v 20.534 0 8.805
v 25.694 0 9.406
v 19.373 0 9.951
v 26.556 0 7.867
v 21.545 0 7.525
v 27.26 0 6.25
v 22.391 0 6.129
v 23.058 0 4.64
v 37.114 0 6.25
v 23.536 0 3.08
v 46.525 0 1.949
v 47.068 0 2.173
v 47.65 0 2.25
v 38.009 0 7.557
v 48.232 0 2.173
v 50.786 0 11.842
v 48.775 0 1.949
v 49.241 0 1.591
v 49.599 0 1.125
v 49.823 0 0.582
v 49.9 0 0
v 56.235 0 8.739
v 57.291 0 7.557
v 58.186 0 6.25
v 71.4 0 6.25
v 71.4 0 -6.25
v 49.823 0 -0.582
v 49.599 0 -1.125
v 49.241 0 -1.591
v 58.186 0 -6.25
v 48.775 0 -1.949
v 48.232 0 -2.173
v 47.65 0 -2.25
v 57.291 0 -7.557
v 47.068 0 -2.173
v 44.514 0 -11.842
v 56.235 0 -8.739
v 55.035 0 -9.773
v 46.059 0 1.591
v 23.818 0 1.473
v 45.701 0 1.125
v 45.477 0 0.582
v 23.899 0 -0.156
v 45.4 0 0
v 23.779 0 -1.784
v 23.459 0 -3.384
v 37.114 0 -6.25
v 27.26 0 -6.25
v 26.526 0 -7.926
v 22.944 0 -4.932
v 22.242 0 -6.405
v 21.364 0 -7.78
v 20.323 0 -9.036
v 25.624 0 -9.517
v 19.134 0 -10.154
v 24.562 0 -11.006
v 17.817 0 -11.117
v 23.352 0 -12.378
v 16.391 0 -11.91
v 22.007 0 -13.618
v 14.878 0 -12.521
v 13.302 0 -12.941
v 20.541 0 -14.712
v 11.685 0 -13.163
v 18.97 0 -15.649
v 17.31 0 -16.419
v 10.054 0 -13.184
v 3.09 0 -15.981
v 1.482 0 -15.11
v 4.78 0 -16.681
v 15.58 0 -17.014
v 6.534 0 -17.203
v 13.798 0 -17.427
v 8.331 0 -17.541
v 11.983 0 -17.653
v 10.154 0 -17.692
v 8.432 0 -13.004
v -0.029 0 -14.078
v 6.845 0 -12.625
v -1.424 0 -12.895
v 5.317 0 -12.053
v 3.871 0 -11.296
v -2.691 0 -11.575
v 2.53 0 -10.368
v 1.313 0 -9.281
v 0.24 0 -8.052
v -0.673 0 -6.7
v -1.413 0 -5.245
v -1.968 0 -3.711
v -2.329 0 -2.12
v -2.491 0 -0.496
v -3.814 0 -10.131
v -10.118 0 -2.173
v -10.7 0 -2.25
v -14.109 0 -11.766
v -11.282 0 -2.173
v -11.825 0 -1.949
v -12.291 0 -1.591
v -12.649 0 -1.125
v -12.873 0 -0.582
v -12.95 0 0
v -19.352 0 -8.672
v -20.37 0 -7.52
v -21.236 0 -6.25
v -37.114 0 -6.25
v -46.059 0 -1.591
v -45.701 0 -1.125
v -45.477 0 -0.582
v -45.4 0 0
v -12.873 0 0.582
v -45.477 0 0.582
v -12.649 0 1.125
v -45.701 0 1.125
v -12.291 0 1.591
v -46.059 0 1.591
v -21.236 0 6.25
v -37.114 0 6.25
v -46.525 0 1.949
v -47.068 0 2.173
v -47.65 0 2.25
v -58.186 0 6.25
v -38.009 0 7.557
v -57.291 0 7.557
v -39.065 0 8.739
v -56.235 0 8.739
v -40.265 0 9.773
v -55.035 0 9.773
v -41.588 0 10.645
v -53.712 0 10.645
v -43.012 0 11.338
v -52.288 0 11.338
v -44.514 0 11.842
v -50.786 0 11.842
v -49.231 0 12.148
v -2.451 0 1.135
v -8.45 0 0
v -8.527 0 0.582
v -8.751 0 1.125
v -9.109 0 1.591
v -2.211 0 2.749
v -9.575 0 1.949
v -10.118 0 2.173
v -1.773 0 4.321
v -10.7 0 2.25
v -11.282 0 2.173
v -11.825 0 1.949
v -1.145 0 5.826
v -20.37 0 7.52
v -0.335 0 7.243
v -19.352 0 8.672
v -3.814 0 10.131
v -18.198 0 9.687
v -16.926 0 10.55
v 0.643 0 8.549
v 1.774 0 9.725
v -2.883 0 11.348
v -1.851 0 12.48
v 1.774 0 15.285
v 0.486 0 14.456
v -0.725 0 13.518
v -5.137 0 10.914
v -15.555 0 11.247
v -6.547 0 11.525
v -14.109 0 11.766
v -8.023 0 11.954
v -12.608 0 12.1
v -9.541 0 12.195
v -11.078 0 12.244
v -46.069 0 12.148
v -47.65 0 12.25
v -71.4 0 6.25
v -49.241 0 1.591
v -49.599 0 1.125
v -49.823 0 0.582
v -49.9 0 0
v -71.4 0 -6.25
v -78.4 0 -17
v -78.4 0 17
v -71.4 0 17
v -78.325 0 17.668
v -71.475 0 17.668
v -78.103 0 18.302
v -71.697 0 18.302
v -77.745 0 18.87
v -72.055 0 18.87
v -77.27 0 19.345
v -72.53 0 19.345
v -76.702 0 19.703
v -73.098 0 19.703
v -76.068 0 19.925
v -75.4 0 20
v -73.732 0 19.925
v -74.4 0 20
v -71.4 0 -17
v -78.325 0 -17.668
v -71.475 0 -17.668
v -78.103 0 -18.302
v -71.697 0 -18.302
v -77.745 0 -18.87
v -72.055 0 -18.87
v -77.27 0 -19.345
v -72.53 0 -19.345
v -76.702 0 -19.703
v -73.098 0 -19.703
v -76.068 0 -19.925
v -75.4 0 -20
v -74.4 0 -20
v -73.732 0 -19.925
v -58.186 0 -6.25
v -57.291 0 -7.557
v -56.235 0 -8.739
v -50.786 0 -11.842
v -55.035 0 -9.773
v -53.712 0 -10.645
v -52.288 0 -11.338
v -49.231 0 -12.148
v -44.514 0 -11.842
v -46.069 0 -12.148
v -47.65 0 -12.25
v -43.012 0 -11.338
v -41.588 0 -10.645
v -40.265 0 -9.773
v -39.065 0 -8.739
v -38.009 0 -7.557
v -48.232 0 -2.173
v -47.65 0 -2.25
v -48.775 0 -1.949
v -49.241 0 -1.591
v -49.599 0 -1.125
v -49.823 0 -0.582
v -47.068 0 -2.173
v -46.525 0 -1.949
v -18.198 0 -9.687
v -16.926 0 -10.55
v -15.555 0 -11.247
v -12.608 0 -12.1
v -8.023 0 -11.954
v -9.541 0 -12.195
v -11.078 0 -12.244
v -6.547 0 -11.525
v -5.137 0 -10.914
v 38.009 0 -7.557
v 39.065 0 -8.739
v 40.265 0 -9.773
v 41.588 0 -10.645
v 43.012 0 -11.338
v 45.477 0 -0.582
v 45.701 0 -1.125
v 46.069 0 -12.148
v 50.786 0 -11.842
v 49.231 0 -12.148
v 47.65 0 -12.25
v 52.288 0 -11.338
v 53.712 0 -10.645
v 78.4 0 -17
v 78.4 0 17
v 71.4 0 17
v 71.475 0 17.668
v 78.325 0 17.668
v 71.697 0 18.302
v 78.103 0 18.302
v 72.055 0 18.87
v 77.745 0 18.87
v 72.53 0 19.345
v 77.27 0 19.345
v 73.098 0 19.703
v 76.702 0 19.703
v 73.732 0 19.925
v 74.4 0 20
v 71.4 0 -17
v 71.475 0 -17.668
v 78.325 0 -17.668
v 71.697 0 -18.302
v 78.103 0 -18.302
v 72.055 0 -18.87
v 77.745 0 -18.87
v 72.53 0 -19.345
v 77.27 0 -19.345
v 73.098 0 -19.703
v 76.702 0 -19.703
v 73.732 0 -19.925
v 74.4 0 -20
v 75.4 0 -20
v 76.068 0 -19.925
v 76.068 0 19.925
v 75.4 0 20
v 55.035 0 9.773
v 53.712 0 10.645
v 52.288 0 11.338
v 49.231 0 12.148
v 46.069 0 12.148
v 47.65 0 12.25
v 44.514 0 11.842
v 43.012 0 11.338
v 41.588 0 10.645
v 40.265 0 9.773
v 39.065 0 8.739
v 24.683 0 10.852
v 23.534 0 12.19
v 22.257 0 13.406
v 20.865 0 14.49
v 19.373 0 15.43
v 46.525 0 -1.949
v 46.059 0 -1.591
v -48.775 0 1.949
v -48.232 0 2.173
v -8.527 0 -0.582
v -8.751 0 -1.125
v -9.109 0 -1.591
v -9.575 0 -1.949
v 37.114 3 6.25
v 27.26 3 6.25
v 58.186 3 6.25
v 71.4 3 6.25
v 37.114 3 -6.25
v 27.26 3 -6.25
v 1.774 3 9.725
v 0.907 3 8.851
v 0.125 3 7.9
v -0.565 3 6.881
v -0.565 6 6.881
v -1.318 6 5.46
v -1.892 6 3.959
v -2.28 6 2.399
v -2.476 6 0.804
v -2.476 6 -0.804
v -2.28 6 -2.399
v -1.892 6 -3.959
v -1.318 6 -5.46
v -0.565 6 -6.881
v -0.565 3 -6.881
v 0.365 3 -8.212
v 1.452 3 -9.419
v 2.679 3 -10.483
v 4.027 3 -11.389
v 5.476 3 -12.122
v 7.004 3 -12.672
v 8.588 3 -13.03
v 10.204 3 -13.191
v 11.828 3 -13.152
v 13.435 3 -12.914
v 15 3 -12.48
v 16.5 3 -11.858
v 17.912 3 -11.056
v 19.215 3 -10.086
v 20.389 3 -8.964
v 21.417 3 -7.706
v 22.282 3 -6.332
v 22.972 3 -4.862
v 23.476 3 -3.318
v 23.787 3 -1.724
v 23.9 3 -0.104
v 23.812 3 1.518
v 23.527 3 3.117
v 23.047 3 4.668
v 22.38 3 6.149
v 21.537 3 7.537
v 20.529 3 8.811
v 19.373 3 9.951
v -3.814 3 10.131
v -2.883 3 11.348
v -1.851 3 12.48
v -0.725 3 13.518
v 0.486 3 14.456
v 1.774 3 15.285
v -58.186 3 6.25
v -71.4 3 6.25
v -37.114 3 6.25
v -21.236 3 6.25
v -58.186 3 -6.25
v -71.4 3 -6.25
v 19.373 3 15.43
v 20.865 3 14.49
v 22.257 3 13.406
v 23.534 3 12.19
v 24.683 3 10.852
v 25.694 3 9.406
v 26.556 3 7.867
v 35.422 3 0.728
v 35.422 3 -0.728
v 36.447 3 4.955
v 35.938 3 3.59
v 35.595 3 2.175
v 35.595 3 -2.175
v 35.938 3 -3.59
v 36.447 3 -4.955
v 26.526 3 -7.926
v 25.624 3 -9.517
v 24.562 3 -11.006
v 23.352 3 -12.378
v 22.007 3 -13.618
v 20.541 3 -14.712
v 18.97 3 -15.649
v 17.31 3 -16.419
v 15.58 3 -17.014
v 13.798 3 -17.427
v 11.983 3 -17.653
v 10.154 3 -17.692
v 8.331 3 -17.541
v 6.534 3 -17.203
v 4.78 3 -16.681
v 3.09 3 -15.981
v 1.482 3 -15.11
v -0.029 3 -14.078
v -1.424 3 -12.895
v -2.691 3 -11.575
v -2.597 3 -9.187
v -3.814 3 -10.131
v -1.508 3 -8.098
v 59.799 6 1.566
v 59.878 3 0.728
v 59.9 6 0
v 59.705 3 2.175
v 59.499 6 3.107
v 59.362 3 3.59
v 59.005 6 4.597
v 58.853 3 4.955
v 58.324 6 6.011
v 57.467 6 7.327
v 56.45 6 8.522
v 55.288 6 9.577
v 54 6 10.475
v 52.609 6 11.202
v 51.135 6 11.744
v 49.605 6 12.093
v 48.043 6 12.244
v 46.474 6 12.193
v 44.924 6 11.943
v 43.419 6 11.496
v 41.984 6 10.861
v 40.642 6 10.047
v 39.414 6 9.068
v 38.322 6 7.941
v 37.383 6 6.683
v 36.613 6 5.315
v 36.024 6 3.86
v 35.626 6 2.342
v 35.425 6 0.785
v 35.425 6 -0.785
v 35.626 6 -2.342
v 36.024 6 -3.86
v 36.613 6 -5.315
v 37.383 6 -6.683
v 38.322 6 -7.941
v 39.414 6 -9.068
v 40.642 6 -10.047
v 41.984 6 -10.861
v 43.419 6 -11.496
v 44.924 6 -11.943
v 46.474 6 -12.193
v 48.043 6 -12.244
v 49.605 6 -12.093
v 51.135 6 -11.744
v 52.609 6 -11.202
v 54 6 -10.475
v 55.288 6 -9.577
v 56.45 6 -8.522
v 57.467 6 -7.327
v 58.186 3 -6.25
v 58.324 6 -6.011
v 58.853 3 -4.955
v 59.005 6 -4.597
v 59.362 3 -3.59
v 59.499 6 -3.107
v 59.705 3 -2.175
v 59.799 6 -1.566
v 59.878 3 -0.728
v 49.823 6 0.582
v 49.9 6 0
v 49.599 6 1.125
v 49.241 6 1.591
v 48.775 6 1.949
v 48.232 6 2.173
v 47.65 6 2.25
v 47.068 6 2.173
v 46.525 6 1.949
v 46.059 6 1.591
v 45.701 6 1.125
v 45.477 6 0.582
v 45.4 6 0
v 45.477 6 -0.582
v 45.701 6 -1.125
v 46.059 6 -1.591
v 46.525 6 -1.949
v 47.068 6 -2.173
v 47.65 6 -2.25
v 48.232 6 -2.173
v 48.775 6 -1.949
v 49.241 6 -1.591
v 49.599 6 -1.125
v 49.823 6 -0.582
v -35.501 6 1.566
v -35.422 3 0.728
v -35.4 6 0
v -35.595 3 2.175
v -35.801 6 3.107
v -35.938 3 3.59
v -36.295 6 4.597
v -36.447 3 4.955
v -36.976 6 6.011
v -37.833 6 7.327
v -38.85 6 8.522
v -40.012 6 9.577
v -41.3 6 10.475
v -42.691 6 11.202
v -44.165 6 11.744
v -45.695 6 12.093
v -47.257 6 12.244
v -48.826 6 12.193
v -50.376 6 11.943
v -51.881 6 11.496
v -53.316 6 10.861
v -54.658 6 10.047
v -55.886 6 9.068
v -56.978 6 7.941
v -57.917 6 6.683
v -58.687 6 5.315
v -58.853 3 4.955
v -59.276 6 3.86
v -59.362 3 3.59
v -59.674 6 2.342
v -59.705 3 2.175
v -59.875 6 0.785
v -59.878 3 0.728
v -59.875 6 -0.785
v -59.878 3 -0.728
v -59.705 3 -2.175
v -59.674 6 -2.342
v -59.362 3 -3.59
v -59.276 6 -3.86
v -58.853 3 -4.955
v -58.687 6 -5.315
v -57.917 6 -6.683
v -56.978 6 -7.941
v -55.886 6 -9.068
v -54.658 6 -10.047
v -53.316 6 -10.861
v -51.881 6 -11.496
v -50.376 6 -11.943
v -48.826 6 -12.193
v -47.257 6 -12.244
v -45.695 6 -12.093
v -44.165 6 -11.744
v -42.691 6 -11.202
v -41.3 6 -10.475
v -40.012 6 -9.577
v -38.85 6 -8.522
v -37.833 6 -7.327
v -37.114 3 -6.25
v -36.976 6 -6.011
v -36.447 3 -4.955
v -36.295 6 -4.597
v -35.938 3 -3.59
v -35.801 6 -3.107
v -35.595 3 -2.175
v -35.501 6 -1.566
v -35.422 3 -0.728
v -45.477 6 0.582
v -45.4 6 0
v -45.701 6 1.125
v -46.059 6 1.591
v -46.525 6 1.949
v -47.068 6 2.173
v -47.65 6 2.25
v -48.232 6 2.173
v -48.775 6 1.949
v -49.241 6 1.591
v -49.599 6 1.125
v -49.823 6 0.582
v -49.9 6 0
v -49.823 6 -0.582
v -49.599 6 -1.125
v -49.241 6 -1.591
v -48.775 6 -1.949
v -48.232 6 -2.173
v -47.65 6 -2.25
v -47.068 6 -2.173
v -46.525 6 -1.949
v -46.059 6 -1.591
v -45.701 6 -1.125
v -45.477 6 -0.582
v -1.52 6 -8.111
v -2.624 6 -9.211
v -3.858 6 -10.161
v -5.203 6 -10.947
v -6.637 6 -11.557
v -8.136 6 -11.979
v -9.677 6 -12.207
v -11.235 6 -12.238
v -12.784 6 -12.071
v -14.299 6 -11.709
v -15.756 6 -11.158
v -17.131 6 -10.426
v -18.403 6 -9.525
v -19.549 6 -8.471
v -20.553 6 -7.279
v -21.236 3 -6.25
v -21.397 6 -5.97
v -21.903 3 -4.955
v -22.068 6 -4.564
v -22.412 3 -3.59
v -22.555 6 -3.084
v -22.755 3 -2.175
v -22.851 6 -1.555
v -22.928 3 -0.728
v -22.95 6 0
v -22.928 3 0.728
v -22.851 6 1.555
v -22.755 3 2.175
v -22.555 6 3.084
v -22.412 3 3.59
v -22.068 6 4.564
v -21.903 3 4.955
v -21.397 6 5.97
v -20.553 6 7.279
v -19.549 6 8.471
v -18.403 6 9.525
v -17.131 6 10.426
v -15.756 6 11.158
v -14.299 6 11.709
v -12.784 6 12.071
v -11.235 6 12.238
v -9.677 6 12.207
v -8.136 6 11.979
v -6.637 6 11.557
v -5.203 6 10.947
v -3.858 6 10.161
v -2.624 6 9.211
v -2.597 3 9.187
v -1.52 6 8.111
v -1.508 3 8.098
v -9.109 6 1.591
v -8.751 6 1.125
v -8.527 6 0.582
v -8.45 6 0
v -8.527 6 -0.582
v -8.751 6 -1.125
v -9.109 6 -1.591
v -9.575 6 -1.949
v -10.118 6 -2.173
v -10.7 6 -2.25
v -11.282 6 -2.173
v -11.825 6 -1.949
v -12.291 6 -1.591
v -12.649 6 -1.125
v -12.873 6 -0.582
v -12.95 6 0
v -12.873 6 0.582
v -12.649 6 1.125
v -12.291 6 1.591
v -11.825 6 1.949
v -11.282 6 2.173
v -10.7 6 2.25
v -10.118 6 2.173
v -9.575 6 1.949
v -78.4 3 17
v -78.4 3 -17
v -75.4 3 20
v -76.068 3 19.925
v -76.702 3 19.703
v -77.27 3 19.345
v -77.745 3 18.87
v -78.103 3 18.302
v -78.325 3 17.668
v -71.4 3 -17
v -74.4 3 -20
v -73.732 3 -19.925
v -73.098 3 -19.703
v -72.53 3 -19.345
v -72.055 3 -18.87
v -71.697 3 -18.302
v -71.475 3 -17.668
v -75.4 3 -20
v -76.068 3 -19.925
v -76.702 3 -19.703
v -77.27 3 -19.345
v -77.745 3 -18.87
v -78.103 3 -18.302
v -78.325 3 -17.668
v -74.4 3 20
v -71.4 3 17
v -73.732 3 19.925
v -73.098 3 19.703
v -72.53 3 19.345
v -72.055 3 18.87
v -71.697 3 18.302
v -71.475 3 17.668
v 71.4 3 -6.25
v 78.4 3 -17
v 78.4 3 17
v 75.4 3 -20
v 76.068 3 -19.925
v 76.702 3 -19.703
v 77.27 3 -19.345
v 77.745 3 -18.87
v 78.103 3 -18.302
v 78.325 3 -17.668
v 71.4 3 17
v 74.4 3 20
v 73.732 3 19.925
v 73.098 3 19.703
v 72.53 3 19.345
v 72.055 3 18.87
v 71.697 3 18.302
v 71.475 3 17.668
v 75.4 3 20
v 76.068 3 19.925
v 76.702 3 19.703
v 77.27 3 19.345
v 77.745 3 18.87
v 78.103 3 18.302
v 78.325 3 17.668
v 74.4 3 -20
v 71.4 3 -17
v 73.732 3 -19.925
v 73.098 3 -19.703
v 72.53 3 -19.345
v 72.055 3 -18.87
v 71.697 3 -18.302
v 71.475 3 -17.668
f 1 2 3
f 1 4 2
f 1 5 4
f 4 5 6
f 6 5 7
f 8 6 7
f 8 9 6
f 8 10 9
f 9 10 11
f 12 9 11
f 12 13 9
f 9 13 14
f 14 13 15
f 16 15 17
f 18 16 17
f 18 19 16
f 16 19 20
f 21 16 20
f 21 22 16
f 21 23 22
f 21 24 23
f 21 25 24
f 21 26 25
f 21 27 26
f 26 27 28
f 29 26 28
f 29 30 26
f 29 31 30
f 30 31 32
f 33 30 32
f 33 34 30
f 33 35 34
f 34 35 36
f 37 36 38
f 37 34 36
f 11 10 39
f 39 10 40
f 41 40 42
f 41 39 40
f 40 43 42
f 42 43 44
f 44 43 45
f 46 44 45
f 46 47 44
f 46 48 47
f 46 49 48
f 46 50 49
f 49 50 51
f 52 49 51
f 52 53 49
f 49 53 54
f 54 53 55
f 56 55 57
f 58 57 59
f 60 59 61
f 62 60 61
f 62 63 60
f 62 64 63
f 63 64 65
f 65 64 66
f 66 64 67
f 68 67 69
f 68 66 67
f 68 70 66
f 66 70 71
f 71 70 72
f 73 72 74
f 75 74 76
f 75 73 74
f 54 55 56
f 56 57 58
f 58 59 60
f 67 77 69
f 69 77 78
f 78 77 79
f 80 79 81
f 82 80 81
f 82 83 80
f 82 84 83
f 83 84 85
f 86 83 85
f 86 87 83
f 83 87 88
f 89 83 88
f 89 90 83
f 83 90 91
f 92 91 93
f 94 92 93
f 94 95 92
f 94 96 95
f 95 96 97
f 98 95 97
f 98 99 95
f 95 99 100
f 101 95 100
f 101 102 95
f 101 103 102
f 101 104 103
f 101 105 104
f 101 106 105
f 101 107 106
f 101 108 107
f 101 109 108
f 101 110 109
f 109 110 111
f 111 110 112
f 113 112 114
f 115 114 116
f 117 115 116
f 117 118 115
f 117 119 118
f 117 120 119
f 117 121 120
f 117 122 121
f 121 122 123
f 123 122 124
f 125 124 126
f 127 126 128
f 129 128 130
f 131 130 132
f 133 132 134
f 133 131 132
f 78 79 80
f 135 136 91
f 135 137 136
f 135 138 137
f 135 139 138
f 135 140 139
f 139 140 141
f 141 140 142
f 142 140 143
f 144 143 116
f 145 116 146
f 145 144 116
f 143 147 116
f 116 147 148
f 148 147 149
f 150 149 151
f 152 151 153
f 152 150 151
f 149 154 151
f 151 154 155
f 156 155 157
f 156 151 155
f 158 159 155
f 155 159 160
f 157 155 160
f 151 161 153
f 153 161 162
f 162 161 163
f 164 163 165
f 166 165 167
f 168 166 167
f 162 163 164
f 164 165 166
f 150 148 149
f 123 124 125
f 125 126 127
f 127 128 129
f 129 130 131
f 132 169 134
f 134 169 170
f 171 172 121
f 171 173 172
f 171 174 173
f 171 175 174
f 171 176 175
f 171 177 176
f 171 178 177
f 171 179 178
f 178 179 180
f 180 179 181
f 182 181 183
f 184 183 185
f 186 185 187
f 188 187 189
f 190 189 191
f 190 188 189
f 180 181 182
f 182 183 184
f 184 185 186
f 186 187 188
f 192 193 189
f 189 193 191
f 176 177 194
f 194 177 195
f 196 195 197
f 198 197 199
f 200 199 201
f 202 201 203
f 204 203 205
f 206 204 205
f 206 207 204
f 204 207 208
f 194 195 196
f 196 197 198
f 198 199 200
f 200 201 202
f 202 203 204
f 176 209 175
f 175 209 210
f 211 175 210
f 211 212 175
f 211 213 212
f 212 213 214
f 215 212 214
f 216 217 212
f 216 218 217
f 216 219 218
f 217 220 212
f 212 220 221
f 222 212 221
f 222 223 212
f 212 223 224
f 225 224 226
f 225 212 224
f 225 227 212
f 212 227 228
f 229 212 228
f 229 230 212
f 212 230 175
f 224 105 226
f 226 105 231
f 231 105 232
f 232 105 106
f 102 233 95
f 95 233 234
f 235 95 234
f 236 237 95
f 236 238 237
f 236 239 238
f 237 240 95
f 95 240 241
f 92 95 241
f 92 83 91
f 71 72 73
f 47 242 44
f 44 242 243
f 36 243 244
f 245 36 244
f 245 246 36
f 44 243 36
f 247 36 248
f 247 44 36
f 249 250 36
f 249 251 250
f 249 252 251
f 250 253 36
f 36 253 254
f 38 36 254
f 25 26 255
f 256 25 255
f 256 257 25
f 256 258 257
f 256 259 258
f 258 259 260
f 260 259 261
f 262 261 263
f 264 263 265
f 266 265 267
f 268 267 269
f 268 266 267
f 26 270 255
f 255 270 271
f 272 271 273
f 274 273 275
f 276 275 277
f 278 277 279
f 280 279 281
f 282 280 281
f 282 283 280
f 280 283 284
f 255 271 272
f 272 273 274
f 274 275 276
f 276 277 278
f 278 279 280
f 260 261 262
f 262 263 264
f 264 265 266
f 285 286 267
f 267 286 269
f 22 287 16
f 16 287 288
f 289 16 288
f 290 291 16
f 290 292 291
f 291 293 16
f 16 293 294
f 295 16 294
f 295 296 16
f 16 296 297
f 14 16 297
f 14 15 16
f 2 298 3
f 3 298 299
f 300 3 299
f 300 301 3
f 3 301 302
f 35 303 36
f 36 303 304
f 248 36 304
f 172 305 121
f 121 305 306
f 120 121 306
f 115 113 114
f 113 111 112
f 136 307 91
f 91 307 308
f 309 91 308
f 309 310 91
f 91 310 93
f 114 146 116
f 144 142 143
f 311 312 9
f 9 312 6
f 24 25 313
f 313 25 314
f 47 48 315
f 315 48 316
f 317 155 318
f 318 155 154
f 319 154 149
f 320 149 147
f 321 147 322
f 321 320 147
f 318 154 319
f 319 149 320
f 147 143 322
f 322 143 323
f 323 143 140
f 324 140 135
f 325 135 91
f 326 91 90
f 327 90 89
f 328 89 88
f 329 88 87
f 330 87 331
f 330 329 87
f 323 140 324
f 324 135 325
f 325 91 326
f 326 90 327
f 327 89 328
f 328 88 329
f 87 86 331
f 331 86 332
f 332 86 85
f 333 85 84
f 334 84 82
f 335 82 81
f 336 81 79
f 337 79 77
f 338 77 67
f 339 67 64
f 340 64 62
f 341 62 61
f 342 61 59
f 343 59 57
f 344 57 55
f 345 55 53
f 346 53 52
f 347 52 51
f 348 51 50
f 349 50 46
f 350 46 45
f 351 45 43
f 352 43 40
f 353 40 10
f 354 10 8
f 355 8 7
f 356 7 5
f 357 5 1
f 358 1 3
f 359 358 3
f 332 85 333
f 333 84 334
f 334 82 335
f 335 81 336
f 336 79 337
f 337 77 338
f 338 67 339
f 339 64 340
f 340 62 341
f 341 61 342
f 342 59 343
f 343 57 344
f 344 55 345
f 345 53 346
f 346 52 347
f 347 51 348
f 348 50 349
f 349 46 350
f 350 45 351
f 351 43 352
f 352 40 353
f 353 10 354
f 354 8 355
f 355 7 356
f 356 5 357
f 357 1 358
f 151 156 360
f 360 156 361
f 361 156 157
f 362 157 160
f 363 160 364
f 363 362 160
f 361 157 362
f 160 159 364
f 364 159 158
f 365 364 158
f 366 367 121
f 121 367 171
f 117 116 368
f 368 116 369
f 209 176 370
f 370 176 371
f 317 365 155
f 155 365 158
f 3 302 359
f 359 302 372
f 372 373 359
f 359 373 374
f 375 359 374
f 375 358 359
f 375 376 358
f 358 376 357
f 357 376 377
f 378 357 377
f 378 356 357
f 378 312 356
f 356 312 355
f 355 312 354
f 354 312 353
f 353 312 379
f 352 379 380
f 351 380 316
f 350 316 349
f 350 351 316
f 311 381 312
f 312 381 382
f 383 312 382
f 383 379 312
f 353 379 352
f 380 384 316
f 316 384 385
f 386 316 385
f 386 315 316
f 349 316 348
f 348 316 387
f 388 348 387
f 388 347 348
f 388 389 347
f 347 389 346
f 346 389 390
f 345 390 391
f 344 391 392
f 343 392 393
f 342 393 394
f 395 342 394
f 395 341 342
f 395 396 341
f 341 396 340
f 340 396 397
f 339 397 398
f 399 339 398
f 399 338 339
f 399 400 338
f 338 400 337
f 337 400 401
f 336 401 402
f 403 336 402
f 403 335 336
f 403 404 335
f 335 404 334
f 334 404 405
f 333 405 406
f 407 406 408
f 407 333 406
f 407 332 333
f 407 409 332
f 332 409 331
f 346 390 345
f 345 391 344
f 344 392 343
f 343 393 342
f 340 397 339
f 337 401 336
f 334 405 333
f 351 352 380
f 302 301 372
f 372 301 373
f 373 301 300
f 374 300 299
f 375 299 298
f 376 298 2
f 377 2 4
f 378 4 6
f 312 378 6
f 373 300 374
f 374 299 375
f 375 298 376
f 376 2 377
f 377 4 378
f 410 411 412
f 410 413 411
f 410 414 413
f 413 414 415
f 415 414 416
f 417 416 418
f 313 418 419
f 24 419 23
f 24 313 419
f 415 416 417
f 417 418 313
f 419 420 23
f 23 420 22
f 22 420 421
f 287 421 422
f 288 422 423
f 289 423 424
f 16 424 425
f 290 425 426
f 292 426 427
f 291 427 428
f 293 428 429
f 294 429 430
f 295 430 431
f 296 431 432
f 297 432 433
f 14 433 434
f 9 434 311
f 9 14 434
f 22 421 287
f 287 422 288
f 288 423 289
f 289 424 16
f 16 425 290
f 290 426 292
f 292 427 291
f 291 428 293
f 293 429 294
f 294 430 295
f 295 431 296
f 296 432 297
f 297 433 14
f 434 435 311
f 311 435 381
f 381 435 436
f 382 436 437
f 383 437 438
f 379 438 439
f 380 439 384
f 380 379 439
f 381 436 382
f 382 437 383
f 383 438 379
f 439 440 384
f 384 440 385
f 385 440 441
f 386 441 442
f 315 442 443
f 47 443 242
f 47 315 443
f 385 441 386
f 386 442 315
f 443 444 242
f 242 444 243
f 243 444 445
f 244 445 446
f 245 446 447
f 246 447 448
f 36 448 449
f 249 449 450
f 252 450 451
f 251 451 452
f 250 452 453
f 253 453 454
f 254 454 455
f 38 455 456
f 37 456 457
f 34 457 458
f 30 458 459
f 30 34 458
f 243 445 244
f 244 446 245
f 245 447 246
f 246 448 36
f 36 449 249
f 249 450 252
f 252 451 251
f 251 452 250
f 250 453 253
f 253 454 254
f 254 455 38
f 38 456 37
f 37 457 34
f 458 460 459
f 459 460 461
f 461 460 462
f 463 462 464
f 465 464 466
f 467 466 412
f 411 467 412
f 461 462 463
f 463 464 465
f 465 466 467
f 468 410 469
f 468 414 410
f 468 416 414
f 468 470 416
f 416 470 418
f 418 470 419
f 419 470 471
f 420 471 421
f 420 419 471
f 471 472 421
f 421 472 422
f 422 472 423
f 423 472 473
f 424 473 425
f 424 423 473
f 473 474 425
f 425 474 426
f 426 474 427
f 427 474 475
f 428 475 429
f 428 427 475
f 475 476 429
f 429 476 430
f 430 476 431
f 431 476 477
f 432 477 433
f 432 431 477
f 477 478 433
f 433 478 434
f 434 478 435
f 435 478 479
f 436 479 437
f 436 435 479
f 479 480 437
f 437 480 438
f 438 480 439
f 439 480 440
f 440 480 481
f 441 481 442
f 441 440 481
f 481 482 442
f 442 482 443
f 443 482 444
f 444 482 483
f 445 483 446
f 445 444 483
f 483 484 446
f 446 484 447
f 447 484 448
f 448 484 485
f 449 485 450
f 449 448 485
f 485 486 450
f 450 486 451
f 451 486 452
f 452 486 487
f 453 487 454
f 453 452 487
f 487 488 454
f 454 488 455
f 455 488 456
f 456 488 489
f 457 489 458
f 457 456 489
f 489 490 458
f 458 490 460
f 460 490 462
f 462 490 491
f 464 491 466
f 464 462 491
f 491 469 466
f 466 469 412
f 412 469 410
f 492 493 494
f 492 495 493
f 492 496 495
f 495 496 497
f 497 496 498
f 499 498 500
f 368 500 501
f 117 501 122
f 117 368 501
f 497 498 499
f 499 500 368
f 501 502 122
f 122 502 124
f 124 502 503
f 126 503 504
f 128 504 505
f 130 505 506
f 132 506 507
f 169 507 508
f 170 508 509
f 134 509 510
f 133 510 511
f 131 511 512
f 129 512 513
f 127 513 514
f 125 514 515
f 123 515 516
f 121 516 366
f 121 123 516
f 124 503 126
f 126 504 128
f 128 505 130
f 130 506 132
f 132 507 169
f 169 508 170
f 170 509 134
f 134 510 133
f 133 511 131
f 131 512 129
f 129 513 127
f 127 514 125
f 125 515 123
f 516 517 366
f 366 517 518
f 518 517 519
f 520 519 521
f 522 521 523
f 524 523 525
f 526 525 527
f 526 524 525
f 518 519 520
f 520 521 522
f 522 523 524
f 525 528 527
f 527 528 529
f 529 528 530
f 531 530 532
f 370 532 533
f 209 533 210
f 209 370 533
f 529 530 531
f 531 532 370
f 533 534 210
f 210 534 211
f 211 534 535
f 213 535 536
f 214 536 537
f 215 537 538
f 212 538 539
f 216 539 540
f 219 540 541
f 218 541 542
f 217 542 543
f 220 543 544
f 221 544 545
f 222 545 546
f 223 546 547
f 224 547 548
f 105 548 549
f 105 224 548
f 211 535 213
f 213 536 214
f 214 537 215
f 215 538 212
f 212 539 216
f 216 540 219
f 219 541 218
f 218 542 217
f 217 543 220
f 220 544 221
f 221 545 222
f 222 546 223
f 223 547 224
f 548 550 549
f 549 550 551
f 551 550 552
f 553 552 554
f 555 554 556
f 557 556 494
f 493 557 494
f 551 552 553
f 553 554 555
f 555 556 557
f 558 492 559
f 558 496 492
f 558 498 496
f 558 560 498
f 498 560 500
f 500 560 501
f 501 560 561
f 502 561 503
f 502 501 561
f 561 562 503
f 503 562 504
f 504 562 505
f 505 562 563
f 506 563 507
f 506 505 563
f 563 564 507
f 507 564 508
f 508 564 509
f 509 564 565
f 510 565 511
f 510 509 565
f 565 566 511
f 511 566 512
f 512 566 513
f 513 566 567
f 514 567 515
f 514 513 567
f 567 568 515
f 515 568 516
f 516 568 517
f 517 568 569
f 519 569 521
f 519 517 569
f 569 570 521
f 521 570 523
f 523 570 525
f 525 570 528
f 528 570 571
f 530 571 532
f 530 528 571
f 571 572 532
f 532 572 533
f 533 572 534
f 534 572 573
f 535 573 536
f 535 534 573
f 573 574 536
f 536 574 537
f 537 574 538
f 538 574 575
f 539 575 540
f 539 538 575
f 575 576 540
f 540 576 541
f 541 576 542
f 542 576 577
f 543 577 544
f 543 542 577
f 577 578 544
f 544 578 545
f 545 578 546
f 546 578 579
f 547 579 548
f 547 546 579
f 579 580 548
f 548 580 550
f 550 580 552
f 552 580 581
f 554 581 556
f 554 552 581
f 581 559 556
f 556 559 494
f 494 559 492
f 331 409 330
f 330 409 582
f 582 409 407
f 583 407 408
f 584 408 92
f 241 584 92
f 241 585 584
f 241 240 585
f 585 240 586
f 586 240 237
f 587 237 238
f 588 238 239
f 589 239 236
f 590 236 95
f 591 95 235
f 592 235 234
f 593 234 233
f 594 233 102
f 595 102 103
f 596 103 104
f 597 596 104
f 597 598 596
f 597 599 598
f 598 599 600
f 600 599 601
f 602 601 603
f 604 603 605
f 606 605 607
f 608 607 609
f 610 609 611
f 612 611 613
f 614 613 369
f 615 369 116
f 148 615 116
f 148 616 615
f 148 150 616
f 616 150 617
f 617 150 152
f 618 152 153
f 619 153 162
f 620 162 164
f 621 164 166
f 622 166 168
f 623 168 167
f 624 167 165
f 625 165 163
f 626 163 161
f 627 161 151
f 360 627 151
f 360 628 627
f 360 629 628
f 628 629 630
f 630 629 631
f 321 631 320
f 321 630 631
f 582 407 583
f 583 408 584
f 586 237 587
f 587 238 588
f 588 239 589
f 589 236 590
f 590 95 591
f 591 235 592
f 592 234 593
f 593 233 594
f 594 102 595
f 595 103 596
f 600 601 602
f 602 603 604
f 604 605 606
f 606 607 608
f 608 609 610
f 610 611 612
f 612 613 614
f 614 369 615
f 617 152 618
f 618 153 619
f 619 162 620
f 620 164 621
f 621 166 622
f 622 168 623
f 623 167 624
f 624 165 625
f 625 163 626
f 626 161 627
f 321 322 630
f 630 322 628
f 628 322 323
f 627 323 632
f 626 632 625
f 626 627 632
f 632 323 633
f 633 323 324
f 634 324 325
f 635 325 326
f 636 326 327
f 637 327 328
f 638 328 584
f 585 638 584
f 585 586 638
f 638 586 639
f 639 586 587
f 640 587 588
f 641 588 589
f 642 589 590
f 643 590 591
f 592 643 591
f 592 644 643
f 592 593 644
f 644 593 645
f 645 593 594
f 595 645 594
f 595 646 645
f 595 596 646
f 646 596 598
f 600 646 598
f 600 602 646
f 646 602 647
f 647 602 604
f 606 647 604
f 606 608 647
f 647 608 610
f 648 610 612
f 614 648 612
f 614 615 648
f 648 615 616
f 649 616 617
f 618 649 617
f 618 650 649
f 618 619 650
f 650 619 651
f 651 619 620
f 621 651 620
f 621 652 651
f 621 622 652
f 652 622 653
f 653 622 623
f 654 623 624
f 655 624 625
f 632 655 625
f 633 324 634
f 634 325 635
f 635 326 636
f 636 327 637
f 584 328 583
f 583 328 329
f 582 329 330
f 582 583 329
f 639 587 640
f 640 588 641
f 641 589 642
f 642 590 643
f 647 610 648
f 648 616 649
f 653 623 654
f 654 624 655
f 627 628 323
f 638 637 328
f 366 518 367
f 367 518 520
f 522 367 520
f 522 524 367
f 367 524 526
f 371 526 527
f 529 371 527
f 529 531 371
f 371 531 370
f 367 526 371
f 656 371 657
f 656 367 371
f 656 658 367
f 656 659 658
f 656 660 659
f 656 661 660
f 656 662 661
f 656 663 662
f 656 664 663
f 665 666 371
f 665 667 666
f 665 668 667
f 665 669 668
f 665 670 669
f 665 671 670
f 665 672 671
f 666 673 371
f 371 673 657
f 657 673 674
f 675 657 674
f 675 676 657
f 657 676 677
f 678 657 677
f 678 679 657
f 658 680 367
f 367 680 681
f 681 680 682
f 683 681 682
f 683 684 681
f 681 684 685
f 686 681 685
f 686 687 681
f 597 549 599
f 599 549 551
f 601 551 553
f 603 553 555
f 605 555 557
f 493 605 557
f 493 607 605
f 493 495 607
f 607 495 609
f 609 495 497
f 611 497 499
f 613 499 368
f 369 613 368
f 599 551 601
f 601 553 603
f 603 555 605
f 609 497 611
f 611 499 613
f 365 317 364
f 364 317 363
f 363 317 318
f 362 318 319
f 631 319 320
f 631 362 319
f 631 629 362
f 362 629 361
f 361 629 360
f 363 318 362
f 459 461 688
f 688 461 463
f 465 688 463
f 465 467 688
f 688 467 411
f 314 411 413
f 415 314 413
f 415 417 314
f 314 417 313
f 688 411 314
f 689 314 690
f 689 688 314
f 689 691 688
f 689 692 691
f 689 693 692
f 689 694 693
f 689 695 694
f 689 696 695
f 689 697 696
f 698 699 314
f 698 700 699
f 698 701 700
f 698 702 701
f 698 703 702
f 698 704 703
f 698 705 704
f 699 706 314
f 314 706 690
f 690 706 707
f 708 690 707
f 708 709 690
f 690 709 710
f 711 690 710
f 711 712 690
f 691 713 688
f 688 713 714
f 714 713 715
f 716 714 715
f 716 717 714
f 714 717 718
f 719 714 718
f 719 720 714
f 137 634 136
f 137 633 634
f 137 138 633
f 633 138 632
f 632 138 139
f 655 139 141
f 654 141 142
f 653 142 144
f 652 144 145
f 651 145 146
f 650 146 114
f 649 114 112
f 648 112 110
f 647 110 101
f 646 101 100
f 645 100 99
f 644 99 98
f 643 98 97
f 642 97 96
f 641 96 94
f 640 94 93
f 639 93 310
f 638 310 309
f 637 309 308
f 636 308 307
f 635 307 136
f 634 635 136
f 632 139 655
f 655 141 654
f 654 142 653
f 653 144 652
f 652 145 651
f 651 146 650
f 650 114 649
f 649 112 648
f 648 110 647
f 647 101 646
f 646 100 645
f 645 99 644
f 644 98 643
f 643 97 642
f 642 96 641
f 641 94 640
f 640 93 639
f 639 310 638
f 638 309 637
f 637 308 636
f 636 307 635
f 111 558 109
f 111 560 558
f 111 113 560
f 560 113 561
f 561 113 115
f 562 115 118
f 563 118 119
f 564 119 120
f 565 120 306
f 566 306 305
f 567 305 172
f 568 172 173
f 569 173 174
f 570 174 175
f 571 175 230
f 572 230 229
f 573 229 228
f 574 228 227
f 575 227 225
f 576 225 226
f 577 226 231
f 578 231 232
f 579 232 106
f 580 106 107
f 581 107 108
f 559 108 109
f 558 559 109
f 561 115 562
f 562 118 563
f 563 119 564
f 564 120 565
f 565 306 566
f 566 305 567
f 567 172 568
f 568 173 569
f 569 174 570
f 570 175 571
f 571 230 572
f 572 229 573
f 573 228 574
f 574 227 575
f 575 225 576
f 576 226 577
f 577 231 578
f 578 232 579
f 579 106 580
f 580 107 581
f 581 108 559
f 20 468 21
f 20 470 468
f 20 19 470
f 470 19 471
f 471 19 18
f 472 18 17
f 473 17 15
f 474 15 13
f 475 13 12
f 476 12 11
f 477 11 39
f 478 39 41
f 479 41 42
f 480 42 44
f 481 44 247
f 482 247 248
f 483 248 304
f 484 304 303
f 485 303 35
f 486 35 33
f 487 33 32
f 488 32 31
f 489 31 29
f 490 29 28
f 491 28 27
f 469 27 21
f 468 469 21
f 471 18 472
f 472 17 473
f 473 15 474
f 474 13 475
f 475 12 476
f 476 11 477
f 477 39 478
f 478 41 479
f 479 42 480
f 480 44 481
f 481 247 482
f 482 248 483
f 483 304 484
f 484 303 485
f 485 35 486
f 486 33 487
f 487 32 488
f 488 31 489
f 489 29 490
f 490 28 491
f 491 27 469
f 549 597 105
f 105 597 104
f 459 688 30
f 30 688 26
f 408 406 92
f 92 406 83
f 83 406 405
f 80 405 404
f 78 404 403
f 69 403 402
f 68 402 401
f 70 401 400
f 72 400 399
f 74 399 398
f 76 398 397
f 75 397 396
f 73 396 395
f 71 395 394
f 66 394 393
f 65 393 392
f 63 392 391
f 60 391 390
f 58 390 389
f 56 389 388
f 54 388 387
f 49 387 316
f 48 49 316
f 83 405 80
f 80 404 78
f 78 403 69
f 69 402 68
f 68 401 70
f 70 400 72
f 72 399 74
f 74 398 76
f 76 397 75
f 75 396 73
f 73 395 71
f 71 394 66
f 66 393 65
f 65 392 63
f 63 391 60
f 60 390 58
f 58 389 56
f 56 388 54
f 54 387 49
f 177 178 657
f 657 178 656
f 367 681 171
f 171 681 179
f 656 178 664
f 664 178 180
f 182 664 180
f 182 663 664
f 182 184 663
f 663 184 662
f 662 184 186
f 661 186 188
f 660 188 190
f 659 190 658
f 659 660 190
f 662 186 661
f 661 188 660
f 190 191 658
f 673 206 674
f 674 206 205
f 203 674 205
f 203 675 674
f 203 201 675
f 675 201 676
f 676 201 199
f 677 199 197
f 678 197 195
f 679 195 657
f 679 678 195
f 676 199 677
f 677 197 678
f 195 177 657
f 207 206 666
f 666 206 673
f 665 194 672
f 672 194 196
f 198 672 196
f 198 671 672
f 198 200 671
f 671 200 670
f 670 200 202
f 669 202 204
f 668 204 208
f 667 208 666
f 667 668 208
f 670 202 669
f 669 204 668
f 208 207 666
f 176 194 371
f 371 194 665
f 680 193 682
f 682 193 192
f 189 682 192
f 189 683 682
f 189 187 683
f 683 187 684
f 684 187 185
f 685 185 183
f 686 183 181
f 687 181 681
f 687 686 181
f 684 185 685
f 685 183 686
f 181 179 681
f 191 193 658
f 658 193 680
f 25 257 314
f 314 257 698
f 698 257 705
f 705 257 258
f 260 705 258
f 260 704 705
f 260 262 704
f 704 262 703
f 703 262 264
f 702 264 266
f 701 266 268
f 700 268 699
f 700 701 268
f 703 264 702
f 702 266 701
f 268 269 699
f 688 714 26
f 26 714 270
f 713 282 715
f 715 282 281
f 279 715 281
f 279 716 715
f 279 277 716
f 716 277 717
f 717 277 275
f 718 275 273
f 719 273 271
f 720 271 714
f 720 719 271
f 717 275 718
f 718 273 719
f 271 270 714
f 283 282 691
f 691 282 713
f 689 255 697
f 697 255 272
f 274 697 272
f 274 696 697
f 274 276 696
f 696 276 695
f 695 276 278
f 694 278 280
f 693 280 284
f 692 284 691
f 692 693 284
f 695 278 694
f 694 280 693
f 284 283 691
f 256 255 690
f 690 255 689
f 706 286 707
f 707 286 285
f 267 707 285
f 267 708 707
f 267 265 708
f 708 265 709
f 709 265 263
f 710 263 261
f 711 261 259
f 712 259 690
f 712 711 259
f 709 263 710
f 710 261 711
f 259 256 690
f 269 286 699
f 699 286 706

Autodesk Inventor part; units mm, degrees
ref_plane "YZ Plane" through (0, 0, 0) normal (1, 0, 0) x (0, 1, 0)
ref_plane "XZ Plane" through (0, 0, 0) normal (0, 1, 0) x (-1, 0, 0)
ref_plane "XY Plane" through (0, 0, 0) normal (0, 0, 1) x (1, 0, 0)
sketch "Sketch1" plane through (0, 0, 0) normal (0, 1, 0) x (-1, 0, 0)
  line L0 (-75.4, 6.25) -> (75.4, 6.25)
  line L1 (78.4, 3.25) -> (78.4, -3.25)
  line L2 (75.4, -6.25) -> (-75.4, -6.25)
  line L3 (-78.4, -3.25) -> (-78.4, 3.25)
  circle A0 centre (-47.65, 0) radius 2.25
  circle A1 centre (47.65, 0) radius 2.25
  circle A2 centre (-47.65, 0) radius 26.75 construction
  circle A3 centre (-10.7, 0) radius 1.7
  circle A4 centre (-10.7, 0) radius 11.2 construction
  line L4 (-21.9, 0) -> (-21.9, 5.3604)
  line L5 (-20.9, 0) -> (-20.9, 5.3604)
  circle A5 centre (10.7, 0) radius 2.25
  circle A6 centre (10.7, 0) radius 11.2 construction
  line L6 (-0.5, 0) -> (-0.5, 4.194)
  line L7 (0.5, 0) -> (0.5, 4.194)
  circle A7 centre (47.65, 0) radius 26.75 construction
  line L8 (20.9, 0) -> (20.9, 4.3426)
  line L9 (21.9, 0) -> (21.9, 4.3426)
  arc A8 (-75.4, 6.25) -> (-78.4, 3.25) centre (-75.4, 3.25) ccw
  arc A9 (-78.4, -3.25) -> (-75.4, -6.25) centre (-75.4, -3.25) ccw
  arc A10 (78.4, 3.25) -> (75.4, 6.25) centre (75.4, 3.25) ccw
  arc A11 (75.4, -6.25) -> (78.4, -3.25) centre (75.4, -3.25) ccw
  line L10 (-81.9483, 0) -> (78.4, 0) construction
  circle A12 centre (-10.7, 0) radius 13.2
  circle A13 centre (-10.7, 0) radius 17.7
  line L11 (74.4, 0) -> (74.4, 11.2)
  line L12 (-74.4, 0) -> (-74.4, 10)
  line L13 (-75.4, 20) -> (-74.4, 20)
  line L14 (-71.4, 17) -> (-71.4, -17)
  line L15 (-74.4, -20) -> (-75.4, -20)
  line L16 (-78.4, -17) -> (-78.4, 17)
  line L17 (75.4, 20) -> (74.4, 20)
  line L18 (71.4, 17) -> (71.4, -17)
  line L19 (74.4, -20) -> (75.4, -20)
  line L20 (78.4, -17) -> (78.4, 17)
  arc A14 (74.4, 20) -> (71.4, 17) centre (74.4, 17) ccw
  arc A15 (78.4, 17) -> (75.4, 20) centre (75.4, 17) ccw
  arc A16 (75.4, -20) -> (78.4, -17) centre (75.4, -17) ccw
  arc A17 (71.4, -17) -> (74.4, -20) centre (74.4, -17) ccw
  arc A18 (-75.4, 20) -> (-78.4, 17) centre (-75.4, 17) ccw
  arc A19 (-71.4, 17) -> (-74.4, 20) centre (-74.4, 17) ccw
  arc A20 (-74.4, -20) -> (-71.4, -17) centre (-74.4, -17) ccw
  arc A21 (-78.4, -17) -> (-75.4, -20) centre (-75.4, -17) ccw
  line L21 (-19.3726, 23.4692) -> (-1.7741, 23.4692)
  line L22 (-1.7741, 23.4692) -> (-1.7741, 7.4894)
  line L23 (-1.7741, 7.4894) -> (-19.3726, 7.4894)
  line L24 (-19.3726, 7.4894) -> (-19.3726, 23.4692)
  point P0 (0, 0)
  point P1 (-78.4, 6.25)
  point P2 (-78.4, -6.25)
  point P3 (0, 6.25)
  point P4 (-78.4, 20)
  point P5 (-71.4, 20)
  point P6 (-78.4, -20)
  point P7 (-78.4, 0)
  point P8 (-78.4, 0)
  point P9 (78.4, 20)
  point P10 (71.4, 20)
  point P11 (78.4, -20)
  point P12 (78.4, 0)
  dimension "d0" = 12.5
  dimension "d1" = 4.5
  dimension "d3" = 4.5
  dimension "d5" = 53.5
  dimension "d6" = 3.4
  dimension "d7" = 22.4
  dimension "d8" = 1
  dimension "d9" = 4.5
  dimension "d10" = 22.4
  dimension "d11" = 1
  dimension "d12" = 53.5
  dimension "d13" = 1
  dimension "d14" = 3
  dimension "d23" = 4.5
  dimension "d26" = 4
  dimension "d27" = 4
  dimension "d28" = 7
  dimension "d29" = 40
  dimension "d30" = 7
  dimension "d31" = 40
  dimension "d32" = 3
  dimension "d33" = 3
  dimension "d39" = 2
extrude "Extrusion1" add sketch "Sketch1" along normal blind 3 contours A8 L16 A18 L13 A19 L14 L0 | L0 L14 L2 A9 L3 A8 | L0 A13 L2 L14 | A9 L2 L14 A20 L15 A21 L16 | A13 L24 A12 L0 | L0 A12 L2 A13 | A13 L22 A12 L24 | L2 A12 A13 | A12 L22 A13 L0 | L0 A13 L2 A12 | A13 L0 L18 L2 | L18 L0 A10 L1 A11 L2 | L2 A11 L20 A16 L19 A17 L18 | L18 A14 L17 A15 L20 A10 L0
extrude "Extrusion2" cut sketch "Sketch1" along normal blind 10 contours A12 L24 L23 L22 L0 | L0 A12 L2 | A12 L22 L23 L24 | L2 A12
sketch "Sketch2" plane through (0, 3, 0) normal (0, 1, 0) x (1, 0, 0)
  circle A0 centre (47.65, 0) radius 2.25 projected
  circle A1 centre (-10.7, 0) radius 2.25 projected
  circle A2 centre (-47.65, 0) radius 2.25 projected
  circle A3 centre (-47.65, 0) radius 12.25
  circle A4 centre (-10.7, 0) radius 12.25
  circle A5 centre (47.65, 0) radius 12.25
  point P0 (0, 0)
  dimension "d34" = 10
  dimension "d35" = 10
  dimension "d36" = 10
extrude "Extrusion3" add sketch "Sketch2" along normal blind 3
extrude "Extrusion4" cut sketch "Sketch1" along normal blind 3 contours L24 L21 L22 A13 | A13 L22 A12 L24 | A12 L22 L23 L24
extrude "Extrusion5" add sketch "Sketch2" against normal blind 3
extrude "Extrusion6" cut sketch "Sketch1" along normal mid plane 20 contours A12 L24 L23 L22 L0 | L0 A12 L2 | A12 L22 L23 L24 | L2 A12
equation "\"sp\" = 0.4"
properties part number "OuterBar"
